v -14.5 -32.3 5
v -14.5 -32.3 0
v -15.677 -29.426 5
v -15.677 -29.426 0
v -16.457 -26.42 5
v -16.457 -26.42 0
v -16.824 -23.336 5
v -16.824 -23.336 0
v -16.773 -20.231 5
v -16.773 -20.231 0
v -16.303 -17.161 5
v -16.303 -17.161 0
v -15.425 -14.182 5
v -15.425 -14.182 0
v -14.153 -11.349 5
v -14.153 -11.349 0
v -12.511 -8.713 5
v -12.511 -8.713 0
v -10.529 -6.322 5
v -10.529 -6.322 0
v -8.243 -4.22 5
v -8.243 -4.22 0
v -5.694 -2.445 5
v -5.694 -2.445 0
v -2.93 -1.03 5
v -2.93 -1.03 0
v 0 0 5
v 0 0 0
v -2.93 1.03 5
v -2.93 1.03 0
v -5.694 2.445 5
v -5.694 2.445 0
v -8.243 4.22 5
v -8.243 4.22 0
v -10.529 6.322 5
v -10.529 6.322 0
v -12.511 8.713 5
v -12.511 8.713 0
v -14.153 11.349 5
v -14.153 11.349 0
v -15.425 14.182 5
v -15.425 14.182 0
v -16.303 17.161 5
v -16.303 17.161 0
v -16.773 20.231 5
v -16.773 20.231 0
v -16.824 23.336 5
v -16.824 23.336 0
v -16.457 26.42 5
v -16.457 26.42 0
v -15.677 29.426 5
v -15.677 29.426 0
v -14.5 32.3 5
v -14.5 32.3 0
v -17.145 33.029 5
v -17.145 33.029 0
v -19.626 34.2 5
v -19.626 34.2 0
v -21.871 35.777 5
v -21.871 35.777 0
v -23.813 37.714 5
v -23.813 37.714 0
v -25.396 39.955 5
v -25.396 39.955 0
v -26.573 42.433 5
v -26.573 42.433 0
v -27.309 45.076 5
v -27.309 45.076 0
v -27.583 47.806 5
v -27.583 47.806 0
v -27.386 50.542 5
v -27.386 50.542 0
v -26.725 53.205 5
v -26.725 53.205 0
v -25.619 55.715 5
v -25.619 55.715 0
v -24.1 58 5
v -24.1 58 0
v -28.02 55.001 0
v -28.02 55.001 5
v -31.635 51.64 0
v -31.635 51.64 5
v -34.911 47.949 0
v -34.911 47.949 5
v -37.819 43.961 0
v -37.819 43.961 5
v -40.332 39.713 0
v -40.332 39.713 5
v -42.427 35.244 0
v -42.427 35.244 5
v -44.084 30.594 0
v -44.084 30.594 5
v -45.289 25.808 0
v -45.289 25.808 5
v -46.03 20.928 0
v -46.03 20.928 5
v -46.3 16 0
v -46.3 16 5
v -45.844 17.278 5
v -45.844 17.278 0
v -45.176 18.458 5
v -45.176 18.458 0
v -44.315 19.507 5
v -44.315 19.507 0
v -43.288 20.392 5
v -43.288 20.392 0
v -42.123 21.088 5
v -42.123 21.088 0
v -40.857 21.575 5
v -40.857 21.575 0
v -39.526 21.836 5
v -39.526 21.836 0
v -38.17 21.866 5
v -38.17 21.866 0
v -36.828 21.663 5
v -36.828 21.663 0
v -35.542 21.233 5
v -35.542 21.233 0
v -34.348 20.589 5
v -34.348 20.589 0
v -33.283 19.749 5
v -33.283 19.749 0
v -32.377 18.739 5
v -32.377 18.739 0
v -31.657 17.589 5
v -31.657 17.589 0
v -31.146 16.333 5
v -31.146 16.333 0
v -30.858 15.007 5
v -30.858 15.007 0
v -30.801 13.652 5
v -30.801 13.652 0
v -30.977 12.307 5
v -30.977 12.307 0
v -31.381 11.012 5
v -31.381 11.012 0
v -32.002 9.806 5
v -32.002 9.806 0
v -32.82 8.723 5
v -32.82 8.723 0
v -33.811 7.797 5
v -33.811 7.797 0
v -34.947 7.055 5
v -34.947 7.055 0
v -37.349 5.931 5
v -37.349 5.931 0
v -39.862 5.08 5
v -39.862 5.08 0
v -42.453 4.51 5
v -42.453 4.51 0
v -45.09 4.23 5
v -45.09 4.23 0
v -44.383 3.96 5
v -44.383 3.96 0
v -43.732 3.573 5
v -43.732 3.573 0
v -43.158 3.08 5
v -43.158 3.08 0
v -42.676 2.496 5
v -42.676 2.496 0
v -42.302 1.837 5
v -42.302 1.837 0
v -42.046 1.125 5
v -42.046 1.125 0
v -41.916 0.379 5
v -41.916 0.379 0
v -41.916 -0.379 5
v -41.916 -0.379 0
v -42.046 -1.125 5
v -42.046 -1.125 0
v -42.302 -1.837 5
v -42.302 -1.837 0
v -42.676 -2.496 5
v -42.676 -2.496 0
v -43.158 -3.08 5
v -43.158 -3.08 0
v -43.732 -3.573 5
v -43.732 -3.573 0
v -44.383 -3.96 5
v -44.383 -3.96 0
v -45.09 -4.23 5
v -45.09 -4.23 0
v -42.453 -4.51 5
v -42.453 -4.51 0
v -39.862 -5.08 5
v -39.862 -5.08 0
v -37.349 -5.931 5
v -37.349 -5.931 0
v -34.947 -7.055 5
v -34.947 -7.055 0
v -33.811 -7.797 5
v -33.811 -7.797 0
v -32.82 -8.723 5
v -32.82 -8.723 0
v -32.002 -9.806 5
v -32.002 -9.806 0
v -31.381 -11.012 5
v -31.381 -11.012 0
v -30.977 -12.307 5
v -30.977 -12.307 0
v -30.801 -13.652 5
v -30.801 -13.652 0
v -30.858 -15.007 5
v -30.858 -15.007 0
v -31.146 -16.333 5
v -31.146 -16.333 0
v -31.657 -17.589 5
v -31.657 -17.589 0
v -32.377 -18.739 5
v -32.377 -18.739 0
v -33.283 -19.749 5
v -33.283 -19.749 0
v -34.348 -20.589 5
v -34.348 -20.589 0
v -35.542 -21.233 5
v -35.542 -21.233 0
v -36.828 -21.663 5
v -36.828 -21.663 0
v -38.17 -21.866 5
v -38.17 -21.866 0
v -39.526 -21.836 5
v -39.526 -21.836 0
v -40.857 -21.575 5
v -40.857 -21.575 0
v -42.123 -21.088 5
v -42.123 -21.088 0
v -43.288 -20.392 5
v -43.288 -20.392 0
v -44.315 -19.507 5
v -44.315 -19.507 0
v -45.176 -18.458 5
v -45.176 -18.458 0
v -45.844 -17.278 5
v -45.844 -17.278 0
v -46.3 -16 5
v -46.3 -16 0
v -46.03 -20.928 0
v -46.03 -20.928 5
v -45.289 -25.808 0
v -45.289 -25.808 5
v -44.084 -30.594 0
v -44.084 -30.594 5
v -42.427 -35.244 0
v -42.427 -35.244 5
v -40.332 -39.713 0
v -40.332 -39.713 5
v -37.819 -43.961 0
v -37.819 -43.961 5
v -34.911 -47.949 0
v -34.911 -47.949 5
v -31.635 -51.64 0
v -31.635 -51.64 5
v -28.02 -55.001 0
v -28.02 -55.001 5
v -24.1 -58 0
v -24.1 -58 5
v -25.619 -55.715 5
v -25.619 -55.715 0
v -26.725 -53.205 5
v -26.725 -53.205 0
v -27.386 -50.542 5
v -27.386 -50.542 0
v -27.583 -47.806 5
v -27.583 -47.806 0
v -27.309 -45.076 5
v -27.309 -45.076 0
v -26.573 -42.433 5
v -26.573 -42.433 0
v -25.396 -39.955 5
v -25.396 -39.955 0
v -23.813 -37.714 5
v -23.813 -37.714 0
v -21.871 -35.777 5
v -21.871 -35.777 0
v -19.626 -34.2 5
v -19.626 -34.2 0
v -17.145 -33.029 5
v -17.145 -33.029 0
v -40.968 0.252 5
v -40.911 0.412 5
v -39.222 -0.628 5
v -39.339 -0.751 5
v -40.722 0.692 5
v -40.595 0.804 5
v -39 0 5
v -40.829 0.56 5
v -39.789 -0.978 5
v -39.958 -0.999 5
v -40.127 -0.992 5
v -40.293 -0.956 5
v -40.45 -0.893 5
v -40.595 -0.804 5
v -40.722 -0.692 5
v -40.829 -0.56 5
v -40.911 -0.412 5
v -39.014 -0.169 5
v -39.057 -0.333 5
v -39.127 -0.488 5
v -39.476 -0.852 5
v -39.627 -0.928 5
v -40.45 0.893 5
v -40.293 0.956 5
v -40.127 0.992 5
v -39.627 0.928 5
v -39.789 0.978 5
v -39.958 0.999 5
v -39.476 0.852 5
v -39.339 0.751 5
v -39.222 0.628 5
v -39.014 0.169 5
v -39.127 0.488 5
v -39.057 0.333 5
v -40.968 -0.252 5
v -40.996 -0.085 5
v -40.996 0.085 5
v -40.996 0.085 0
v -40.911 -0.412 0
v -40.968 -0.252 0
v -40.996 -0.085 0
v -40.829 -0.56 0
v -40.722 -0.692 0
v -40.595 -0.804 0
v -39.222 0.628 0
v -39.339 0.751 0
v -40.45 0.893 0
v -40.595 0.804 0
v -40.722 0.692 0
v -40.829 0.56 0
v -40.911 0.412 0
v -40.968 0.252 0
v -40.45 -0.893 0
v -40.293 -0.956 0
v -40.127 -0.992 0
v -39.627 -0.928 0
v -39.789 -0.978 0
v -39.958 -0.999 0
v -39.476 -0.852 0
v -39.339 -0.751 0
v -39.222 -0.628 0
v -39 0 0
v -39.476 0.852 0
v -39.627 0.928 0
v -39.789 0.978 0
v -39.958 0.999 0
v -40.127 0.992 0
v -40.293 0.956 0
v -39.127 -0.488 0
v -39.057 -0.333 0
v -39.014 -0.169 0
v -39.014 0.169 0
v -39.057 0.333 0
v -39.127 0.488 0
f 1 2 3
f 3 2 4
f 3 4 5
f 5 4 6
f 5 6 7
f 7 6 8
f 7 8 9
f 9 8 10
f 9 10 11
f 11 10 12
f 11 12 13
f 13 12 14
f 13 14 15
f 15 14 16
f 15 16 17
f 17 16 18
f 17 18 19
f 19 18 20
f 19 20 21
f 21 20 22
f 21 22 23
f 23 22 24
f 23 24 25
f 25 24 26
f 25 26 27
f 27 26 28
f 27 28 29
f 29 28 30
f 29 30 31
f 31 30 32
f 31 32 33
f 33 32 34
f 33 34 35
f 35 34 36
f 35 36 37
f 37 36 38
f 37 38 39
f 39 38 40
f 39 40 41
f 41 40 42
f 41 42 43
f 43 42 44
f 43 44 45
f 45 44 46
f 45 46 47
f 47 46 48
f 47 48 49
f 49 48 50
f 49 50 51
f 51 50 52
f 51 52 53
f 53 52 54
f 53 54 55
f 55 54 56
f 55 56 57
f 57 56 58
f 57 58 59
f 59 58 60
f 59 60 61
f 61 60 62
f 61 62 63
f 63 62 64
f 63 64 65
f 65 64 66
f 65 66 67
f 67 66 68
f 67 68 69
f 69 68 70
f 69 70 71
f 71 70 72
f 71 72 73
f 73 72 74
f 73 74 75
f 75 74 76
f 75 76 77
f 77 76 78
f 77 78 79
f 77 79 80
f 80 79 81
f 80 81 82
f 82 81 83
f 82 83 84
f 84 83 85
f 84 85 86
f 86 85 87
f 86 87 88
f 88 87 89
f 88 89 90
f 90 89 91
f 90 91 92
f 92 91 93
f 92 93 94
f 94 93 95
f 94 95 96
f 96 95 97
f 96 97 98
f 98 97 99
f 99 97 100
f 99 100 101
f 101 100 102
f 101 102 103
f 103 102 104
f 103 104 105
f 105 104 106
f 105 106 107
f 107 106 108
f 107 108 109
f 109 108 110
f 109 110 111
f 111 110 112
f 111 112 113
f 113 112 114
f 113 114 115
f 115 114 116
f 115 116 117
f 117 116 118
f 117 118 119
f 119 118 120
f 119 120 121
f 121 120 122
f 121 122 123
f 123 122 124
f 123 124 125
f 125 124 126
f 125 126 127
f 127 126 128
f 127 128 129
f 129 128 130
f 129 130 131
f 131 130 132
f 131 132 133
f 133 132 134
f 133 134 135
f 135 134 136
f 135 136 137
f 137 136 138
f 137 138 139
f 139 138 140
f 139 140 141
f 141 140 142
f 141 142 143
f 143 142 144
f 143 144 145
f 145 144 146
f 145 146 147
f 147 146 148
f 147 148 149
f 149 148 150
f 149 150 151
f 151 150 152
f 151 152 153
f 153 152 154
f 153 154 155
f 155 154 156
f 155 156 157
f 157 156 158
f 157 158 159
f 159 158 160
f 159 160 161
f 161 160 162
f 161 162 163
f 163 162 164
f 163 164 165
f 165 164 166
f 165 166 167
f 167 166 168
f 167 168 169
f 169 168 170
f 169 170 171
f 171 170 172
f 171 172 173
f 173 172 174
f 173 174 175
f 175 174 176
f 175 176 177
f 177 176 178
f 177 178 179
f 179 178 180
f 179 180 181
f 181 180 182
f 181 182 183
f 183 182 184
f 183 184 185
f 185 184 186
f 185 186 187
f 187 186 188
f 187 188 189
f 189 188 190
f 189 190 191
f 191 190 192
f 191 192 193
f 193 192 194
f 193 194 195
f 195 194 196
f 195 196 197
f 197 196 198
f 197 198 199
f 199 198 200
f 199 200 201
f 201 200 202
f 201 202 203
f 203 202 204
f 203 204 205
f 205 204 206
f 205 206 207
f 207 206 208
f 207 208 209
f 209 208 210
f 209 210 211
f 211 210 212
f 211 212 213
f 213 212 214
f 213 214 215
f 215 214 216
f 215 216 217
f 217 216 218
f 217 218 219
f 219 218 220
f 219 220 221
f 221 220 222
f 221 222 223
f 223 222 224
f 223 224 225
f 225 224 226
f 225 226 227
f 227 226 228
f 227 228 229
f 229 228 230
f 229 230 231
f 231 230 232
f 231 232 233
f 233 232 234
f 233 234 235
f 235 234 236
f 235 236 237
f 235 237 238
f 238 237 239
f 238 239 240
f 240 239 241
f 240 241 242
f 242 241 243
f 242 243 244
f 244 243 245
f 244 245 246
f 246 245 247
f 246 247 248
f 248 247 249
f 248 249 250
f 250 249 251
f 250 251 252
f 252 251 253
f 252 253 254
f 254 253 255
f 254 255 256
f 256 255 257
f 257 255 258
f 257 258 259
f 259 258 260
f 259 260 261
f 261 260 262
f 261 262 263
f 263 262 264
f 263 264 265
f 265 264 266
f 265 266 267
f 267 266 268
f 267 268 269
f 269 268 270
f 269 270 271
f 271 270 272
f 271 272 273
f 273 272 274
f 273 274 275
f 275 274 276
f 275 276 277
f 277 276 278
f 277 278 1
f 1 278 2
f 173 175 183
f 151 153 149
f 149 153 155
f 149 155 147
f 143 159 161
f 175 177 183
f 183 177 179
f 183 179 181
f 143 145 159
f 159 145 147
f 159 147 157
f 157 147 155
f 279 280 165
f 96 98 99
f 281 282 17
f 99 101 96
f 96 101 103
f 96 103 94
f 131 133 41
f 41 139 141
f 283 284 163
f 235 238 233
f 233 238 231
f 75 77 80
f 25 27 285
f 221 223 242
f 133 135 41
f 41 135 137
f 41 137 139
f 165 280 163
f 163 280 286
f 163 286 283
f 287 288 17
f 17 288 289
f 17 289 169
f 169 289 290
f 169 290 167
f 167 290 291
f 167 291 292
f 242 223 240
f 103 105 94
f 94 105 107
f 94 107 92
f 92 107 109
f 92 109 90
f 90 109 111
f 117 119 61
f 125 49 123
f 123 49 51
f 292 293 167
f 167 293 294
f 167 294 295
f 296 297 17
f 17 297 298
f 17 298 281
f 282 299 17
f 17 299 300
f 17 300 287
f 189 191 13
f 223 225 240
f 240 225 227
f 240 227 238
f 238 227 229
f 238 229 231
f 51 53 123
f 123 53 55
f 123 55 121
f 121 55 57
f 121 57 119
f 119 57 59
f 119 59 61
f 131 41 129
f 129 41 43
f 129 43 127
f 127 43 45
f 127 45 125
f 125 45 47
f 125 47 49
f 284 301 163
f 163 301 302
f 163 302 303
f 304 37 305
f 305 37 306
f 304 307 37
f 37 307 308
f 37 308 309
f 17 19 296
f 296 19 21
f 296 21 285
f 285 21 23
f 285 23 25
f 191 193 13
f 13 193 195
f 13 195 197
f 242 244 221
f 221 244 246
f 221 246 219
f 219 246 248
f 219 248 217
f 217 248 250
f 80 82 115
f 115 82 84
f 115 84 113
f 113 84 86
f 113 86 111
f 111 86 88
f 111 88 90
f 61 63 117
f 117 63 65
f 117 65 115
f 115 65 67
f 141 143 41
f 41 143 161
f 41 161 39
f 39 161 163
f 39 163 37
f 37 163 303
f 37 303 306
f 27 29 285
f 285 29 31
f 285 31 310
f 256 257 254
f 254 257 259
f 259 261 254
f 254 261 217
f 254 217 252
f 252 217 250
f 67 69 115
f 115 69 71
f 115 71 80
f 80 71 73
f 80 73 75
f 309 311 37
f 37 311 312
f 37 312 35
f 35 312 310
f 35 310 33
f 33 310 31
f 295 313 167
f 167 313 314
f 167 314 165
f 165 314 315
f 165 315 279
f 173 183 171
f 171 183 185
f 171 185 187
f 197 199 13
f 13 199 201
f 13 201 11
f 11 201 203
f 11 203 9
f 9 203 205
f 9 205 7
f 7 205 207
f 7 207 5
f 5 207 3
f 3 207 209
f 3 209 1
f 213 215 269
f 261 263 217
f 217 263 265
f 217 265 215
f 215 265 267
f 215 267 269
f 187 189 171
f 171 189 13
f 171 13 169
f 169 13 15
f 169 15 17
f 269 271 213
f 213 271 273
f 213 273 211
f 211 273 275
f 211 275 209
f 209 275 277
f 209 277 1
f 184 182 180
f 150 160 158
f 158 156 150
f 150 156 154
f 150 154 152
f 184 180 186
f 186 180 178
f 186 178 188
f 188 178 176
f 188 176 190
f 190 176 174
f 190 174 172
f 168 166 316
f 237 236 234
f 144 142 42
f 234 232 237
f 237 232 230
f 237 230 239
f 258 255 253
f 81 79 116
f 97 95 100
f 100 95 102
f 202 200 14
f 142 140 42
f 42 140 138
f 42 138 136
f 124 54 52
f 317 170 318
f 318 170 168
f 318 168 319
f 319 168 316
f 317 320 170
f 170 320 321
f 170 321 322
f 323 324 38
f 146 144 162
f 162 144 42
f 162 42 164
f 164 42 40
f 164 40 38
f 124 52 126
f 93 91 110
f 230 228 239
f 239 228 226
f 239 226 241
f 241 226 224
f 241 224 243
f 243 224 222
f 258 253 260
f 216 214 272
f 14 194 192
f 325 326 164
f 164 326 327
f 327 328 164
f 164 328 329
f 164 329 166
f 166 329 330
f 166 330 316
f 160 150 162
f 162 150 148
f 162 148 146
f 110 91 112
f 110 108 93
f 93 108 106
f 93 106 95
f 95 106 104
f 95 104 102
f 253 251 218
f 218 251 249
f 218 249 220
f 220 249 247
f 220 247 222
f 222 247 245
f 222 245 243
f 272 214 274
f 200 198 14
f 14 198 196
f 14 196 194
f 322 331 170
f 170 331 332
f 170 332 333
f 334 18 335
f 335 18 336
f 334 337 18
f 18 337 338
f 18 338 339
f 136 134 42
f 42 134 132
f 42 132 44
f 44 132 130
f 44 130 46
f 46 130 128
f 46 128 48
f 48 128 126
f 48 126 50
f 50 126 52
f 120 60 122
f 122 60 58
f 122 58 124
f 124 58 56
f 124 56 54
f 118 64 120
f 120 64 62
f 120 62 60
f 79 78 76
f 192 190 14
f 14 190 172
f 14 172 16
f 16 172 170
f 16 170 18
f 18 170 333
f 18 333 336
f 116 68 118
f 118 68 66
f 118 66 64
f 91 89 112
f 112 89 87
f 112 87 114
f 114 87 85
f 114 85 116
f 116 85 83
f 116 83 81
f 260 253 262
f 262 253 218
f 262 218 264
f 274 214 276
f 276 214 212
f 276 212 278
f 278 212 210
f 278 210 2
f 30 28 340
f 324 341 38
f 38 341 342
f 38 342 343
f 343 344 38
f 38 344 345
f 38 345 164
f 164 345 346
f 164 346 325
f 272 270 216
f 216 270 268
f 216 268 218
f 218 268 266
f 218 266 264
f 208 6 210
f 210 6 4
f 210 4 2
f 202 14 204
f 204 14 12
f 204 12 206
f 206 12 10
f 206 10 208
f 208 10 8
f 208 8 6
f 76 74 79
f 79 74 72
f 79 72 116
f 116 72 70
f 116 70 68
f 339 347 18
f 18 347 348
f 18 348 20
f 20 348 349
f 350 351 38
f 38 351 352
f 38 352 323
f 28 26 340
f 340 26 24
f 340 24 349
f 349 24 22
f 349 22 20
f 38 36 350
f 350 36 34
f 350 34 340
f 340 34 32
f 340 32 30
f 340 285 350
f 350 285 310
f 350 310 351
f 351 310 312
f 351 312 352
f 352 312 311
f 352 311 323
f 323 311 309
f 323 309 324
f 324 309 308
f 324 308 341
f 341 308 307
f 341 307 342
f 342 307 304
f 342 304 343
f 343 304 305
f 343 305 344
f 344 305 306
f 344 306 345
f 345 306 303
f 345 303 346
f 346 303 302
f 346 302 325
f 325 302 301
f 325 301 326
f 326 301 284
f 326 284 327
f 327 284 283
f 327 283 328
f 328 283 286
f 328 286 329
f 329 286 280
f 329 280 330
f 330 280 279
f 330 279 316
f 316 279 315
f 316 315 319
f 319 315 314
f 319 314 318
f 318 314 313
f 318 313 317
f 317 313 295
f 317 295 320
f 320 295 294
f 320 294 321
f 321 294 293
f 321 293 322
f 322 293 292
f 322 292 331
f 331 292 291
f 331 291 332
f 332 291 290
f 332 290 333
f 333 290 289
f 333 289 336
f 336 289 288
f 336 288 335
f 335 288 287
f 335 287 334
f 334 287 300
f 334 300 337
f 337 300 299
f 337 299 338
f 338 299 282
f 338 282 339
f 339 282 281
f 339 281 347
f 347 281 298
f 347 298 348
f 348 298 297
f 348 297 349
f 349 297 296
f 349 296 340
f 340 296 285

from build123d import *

# Parameters (mm, degrees)
BOSS_EXTRUDE1_DEPTH = 5
SKETCH2_R           = 1
CUT_EXTRUDE2_DEPTH  = 5


with BuildPart() as part:
    # Sketch1 → Boss-Extrude1 (new body)
    with BuildSketch(Plane(origin=(0, 0, 0), x_dir=(0, 1, 0), z_dir=(0, 0, 1))):
        with BuildLine():
            ThreePointArc((0, 0), (12.744177426, 14.83676339), (32.3, 14.5))
            ThreePointArc((32.3, 14.5), (42.433307292, 26.572812771), (58, 24.1))
            ThreePointArc((58, 24.1), (39.71268336, 40.332103653), (16, 46.3))
            ThreePointArc((16, 46.3), (20.191750993, 33.797330101), (7.055281526, 34.946547632))
            ThreePointArc((7.055281526, 34.946547632), (5.079702, 39.861691185), (4.230496454, 45.090496071))
            ThreePointArc((4.230496454, 45.090496071), (0, 41.9), (-4.230496454, 45.090496071))
            ThreePointArc((-4.230496454, 45.090496071), (-5.079702, 39.861691185), (-7.055281526, 34.946547632))
            ThreePointArc((-7.055281526, 34.946547632), (-20.191750993, 33.797330101), (-16, 46.3))
            ThreePointArc((-16, 46.3), (-39.71268336, 40.332103653), (-58, 24.1))
            ThreePointArc((-58, 24.1), (-42.433307292, 26.572812771), (-32.3, 14.5))
            ThreePointArc((-32.3, 14.5), (-12.744177426, 14.83676339), (0, 0))
        make_face()
    extrude(amount=BOSS_EXTRUDE1_DEPTH)

    # Sketch2 → Cut-Extrude2 (cut)
    with BuildSketch(Plane.XY.offset(5)):
        with Locations((-40, 0)):
            Circle(SKETCH2_R)
    extrude(amount=-CUT_EXTRUDE2_DEPTH, mode=Mode.SUBTRACT)


solid = part.part
